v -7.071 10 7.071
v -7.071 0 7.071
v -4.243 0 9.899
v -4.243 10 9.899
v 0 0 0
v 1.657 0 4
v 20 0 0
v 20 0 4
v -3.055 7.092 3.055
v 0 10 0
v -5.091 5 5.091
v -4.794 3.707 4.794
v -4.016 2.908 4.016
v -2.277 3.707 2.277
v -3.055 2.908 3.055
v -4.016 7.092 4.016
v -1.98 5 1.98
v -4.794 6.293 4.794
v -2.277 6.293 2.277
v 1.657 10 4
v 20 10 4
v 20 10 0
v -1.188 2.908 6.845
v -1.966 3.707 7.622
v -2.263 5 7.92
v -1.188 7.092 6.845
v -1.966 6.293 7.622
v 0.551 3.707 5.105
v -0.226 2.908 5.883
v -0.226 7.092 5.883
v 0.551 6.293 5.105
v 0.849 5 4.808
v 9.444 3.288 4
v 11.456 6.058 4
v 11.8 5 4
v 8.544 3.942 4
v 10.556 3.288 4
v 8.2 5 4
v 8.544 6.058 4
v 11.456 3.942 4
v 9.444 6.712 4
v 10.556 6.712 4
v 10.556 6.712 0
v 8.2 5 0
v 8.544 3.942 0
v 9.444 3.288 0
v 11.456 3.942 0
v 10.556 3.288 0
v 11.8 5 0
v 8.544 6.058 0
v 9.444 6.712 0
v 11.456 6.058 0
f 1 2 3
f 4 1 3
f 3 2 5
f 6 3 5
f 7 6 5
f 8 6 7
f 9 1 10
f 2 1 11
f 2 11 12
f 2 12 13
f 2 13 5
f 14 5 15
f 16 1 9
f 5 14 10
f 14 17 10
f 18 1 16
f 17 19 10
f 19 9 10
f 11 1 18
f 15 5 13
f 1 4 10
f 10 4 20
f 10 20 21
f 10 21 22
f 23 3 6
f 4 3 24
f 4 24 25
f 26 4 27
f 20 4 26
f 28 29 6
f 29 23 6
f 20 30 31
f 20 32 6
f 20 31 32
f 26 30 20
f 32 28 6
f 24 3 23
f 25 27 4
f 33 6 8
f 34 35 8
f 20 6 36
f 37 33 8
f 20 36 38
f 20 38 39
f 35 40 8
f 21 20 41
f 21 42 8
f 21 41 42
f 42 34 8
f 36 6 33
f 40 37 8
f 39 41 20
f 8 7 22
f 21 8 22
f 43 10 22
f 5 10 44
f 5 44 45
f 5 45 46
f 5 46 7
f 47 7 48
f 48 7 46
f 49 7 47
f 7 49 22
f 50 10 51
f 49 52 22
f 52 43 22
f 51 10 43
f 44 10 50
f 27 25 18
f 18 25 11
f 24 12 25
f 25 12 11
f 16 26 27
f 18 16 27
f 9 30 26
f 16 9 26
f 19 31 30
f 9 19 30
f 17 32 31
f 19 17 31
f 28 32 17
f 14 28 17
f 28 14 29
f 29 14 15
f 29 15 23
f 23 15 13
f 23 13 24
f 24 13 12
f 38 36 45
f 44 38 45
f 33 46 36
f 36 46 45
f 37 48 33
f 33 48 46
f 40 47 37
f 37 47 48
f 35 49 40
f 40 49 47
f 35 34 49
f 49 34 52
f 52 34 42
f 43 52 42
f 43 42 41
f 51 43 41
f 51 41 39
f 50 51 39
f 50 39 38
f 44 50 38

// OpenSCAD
// PRUSA iteration3
// Fan mount
// GNU GPL v3
// Josef Průša <iam@josefprusa.cz> and contributors
// http://www.reprap.org/wiki/Prusa_Mendel
// http://prusamendel.org

module fan_mount_base() {
  translate([0,0,0]) rotate([0,0,0]) cube([20,10, 4]);
  translate([0,0,0]) rotate([0,45,0]) translate([-10,0,0]) cube([10,10, 4]);
}

module fan_mount_holes() {
  translate([10,5,-1]) rotate([0,0,0]) cylinder(h = 30, r = 1.8, $fn = 10);
  translate([0,5,0]) rotate([0,45,0]) translate([-5,0,-1]) cylinder(h = 30, r = 2.2, $fn = 10);
}

// Final part
module fan_mount() {
  difference() {
   fan_mount_base();
   fan_mount_holes();
  }
}

fan_mount();
